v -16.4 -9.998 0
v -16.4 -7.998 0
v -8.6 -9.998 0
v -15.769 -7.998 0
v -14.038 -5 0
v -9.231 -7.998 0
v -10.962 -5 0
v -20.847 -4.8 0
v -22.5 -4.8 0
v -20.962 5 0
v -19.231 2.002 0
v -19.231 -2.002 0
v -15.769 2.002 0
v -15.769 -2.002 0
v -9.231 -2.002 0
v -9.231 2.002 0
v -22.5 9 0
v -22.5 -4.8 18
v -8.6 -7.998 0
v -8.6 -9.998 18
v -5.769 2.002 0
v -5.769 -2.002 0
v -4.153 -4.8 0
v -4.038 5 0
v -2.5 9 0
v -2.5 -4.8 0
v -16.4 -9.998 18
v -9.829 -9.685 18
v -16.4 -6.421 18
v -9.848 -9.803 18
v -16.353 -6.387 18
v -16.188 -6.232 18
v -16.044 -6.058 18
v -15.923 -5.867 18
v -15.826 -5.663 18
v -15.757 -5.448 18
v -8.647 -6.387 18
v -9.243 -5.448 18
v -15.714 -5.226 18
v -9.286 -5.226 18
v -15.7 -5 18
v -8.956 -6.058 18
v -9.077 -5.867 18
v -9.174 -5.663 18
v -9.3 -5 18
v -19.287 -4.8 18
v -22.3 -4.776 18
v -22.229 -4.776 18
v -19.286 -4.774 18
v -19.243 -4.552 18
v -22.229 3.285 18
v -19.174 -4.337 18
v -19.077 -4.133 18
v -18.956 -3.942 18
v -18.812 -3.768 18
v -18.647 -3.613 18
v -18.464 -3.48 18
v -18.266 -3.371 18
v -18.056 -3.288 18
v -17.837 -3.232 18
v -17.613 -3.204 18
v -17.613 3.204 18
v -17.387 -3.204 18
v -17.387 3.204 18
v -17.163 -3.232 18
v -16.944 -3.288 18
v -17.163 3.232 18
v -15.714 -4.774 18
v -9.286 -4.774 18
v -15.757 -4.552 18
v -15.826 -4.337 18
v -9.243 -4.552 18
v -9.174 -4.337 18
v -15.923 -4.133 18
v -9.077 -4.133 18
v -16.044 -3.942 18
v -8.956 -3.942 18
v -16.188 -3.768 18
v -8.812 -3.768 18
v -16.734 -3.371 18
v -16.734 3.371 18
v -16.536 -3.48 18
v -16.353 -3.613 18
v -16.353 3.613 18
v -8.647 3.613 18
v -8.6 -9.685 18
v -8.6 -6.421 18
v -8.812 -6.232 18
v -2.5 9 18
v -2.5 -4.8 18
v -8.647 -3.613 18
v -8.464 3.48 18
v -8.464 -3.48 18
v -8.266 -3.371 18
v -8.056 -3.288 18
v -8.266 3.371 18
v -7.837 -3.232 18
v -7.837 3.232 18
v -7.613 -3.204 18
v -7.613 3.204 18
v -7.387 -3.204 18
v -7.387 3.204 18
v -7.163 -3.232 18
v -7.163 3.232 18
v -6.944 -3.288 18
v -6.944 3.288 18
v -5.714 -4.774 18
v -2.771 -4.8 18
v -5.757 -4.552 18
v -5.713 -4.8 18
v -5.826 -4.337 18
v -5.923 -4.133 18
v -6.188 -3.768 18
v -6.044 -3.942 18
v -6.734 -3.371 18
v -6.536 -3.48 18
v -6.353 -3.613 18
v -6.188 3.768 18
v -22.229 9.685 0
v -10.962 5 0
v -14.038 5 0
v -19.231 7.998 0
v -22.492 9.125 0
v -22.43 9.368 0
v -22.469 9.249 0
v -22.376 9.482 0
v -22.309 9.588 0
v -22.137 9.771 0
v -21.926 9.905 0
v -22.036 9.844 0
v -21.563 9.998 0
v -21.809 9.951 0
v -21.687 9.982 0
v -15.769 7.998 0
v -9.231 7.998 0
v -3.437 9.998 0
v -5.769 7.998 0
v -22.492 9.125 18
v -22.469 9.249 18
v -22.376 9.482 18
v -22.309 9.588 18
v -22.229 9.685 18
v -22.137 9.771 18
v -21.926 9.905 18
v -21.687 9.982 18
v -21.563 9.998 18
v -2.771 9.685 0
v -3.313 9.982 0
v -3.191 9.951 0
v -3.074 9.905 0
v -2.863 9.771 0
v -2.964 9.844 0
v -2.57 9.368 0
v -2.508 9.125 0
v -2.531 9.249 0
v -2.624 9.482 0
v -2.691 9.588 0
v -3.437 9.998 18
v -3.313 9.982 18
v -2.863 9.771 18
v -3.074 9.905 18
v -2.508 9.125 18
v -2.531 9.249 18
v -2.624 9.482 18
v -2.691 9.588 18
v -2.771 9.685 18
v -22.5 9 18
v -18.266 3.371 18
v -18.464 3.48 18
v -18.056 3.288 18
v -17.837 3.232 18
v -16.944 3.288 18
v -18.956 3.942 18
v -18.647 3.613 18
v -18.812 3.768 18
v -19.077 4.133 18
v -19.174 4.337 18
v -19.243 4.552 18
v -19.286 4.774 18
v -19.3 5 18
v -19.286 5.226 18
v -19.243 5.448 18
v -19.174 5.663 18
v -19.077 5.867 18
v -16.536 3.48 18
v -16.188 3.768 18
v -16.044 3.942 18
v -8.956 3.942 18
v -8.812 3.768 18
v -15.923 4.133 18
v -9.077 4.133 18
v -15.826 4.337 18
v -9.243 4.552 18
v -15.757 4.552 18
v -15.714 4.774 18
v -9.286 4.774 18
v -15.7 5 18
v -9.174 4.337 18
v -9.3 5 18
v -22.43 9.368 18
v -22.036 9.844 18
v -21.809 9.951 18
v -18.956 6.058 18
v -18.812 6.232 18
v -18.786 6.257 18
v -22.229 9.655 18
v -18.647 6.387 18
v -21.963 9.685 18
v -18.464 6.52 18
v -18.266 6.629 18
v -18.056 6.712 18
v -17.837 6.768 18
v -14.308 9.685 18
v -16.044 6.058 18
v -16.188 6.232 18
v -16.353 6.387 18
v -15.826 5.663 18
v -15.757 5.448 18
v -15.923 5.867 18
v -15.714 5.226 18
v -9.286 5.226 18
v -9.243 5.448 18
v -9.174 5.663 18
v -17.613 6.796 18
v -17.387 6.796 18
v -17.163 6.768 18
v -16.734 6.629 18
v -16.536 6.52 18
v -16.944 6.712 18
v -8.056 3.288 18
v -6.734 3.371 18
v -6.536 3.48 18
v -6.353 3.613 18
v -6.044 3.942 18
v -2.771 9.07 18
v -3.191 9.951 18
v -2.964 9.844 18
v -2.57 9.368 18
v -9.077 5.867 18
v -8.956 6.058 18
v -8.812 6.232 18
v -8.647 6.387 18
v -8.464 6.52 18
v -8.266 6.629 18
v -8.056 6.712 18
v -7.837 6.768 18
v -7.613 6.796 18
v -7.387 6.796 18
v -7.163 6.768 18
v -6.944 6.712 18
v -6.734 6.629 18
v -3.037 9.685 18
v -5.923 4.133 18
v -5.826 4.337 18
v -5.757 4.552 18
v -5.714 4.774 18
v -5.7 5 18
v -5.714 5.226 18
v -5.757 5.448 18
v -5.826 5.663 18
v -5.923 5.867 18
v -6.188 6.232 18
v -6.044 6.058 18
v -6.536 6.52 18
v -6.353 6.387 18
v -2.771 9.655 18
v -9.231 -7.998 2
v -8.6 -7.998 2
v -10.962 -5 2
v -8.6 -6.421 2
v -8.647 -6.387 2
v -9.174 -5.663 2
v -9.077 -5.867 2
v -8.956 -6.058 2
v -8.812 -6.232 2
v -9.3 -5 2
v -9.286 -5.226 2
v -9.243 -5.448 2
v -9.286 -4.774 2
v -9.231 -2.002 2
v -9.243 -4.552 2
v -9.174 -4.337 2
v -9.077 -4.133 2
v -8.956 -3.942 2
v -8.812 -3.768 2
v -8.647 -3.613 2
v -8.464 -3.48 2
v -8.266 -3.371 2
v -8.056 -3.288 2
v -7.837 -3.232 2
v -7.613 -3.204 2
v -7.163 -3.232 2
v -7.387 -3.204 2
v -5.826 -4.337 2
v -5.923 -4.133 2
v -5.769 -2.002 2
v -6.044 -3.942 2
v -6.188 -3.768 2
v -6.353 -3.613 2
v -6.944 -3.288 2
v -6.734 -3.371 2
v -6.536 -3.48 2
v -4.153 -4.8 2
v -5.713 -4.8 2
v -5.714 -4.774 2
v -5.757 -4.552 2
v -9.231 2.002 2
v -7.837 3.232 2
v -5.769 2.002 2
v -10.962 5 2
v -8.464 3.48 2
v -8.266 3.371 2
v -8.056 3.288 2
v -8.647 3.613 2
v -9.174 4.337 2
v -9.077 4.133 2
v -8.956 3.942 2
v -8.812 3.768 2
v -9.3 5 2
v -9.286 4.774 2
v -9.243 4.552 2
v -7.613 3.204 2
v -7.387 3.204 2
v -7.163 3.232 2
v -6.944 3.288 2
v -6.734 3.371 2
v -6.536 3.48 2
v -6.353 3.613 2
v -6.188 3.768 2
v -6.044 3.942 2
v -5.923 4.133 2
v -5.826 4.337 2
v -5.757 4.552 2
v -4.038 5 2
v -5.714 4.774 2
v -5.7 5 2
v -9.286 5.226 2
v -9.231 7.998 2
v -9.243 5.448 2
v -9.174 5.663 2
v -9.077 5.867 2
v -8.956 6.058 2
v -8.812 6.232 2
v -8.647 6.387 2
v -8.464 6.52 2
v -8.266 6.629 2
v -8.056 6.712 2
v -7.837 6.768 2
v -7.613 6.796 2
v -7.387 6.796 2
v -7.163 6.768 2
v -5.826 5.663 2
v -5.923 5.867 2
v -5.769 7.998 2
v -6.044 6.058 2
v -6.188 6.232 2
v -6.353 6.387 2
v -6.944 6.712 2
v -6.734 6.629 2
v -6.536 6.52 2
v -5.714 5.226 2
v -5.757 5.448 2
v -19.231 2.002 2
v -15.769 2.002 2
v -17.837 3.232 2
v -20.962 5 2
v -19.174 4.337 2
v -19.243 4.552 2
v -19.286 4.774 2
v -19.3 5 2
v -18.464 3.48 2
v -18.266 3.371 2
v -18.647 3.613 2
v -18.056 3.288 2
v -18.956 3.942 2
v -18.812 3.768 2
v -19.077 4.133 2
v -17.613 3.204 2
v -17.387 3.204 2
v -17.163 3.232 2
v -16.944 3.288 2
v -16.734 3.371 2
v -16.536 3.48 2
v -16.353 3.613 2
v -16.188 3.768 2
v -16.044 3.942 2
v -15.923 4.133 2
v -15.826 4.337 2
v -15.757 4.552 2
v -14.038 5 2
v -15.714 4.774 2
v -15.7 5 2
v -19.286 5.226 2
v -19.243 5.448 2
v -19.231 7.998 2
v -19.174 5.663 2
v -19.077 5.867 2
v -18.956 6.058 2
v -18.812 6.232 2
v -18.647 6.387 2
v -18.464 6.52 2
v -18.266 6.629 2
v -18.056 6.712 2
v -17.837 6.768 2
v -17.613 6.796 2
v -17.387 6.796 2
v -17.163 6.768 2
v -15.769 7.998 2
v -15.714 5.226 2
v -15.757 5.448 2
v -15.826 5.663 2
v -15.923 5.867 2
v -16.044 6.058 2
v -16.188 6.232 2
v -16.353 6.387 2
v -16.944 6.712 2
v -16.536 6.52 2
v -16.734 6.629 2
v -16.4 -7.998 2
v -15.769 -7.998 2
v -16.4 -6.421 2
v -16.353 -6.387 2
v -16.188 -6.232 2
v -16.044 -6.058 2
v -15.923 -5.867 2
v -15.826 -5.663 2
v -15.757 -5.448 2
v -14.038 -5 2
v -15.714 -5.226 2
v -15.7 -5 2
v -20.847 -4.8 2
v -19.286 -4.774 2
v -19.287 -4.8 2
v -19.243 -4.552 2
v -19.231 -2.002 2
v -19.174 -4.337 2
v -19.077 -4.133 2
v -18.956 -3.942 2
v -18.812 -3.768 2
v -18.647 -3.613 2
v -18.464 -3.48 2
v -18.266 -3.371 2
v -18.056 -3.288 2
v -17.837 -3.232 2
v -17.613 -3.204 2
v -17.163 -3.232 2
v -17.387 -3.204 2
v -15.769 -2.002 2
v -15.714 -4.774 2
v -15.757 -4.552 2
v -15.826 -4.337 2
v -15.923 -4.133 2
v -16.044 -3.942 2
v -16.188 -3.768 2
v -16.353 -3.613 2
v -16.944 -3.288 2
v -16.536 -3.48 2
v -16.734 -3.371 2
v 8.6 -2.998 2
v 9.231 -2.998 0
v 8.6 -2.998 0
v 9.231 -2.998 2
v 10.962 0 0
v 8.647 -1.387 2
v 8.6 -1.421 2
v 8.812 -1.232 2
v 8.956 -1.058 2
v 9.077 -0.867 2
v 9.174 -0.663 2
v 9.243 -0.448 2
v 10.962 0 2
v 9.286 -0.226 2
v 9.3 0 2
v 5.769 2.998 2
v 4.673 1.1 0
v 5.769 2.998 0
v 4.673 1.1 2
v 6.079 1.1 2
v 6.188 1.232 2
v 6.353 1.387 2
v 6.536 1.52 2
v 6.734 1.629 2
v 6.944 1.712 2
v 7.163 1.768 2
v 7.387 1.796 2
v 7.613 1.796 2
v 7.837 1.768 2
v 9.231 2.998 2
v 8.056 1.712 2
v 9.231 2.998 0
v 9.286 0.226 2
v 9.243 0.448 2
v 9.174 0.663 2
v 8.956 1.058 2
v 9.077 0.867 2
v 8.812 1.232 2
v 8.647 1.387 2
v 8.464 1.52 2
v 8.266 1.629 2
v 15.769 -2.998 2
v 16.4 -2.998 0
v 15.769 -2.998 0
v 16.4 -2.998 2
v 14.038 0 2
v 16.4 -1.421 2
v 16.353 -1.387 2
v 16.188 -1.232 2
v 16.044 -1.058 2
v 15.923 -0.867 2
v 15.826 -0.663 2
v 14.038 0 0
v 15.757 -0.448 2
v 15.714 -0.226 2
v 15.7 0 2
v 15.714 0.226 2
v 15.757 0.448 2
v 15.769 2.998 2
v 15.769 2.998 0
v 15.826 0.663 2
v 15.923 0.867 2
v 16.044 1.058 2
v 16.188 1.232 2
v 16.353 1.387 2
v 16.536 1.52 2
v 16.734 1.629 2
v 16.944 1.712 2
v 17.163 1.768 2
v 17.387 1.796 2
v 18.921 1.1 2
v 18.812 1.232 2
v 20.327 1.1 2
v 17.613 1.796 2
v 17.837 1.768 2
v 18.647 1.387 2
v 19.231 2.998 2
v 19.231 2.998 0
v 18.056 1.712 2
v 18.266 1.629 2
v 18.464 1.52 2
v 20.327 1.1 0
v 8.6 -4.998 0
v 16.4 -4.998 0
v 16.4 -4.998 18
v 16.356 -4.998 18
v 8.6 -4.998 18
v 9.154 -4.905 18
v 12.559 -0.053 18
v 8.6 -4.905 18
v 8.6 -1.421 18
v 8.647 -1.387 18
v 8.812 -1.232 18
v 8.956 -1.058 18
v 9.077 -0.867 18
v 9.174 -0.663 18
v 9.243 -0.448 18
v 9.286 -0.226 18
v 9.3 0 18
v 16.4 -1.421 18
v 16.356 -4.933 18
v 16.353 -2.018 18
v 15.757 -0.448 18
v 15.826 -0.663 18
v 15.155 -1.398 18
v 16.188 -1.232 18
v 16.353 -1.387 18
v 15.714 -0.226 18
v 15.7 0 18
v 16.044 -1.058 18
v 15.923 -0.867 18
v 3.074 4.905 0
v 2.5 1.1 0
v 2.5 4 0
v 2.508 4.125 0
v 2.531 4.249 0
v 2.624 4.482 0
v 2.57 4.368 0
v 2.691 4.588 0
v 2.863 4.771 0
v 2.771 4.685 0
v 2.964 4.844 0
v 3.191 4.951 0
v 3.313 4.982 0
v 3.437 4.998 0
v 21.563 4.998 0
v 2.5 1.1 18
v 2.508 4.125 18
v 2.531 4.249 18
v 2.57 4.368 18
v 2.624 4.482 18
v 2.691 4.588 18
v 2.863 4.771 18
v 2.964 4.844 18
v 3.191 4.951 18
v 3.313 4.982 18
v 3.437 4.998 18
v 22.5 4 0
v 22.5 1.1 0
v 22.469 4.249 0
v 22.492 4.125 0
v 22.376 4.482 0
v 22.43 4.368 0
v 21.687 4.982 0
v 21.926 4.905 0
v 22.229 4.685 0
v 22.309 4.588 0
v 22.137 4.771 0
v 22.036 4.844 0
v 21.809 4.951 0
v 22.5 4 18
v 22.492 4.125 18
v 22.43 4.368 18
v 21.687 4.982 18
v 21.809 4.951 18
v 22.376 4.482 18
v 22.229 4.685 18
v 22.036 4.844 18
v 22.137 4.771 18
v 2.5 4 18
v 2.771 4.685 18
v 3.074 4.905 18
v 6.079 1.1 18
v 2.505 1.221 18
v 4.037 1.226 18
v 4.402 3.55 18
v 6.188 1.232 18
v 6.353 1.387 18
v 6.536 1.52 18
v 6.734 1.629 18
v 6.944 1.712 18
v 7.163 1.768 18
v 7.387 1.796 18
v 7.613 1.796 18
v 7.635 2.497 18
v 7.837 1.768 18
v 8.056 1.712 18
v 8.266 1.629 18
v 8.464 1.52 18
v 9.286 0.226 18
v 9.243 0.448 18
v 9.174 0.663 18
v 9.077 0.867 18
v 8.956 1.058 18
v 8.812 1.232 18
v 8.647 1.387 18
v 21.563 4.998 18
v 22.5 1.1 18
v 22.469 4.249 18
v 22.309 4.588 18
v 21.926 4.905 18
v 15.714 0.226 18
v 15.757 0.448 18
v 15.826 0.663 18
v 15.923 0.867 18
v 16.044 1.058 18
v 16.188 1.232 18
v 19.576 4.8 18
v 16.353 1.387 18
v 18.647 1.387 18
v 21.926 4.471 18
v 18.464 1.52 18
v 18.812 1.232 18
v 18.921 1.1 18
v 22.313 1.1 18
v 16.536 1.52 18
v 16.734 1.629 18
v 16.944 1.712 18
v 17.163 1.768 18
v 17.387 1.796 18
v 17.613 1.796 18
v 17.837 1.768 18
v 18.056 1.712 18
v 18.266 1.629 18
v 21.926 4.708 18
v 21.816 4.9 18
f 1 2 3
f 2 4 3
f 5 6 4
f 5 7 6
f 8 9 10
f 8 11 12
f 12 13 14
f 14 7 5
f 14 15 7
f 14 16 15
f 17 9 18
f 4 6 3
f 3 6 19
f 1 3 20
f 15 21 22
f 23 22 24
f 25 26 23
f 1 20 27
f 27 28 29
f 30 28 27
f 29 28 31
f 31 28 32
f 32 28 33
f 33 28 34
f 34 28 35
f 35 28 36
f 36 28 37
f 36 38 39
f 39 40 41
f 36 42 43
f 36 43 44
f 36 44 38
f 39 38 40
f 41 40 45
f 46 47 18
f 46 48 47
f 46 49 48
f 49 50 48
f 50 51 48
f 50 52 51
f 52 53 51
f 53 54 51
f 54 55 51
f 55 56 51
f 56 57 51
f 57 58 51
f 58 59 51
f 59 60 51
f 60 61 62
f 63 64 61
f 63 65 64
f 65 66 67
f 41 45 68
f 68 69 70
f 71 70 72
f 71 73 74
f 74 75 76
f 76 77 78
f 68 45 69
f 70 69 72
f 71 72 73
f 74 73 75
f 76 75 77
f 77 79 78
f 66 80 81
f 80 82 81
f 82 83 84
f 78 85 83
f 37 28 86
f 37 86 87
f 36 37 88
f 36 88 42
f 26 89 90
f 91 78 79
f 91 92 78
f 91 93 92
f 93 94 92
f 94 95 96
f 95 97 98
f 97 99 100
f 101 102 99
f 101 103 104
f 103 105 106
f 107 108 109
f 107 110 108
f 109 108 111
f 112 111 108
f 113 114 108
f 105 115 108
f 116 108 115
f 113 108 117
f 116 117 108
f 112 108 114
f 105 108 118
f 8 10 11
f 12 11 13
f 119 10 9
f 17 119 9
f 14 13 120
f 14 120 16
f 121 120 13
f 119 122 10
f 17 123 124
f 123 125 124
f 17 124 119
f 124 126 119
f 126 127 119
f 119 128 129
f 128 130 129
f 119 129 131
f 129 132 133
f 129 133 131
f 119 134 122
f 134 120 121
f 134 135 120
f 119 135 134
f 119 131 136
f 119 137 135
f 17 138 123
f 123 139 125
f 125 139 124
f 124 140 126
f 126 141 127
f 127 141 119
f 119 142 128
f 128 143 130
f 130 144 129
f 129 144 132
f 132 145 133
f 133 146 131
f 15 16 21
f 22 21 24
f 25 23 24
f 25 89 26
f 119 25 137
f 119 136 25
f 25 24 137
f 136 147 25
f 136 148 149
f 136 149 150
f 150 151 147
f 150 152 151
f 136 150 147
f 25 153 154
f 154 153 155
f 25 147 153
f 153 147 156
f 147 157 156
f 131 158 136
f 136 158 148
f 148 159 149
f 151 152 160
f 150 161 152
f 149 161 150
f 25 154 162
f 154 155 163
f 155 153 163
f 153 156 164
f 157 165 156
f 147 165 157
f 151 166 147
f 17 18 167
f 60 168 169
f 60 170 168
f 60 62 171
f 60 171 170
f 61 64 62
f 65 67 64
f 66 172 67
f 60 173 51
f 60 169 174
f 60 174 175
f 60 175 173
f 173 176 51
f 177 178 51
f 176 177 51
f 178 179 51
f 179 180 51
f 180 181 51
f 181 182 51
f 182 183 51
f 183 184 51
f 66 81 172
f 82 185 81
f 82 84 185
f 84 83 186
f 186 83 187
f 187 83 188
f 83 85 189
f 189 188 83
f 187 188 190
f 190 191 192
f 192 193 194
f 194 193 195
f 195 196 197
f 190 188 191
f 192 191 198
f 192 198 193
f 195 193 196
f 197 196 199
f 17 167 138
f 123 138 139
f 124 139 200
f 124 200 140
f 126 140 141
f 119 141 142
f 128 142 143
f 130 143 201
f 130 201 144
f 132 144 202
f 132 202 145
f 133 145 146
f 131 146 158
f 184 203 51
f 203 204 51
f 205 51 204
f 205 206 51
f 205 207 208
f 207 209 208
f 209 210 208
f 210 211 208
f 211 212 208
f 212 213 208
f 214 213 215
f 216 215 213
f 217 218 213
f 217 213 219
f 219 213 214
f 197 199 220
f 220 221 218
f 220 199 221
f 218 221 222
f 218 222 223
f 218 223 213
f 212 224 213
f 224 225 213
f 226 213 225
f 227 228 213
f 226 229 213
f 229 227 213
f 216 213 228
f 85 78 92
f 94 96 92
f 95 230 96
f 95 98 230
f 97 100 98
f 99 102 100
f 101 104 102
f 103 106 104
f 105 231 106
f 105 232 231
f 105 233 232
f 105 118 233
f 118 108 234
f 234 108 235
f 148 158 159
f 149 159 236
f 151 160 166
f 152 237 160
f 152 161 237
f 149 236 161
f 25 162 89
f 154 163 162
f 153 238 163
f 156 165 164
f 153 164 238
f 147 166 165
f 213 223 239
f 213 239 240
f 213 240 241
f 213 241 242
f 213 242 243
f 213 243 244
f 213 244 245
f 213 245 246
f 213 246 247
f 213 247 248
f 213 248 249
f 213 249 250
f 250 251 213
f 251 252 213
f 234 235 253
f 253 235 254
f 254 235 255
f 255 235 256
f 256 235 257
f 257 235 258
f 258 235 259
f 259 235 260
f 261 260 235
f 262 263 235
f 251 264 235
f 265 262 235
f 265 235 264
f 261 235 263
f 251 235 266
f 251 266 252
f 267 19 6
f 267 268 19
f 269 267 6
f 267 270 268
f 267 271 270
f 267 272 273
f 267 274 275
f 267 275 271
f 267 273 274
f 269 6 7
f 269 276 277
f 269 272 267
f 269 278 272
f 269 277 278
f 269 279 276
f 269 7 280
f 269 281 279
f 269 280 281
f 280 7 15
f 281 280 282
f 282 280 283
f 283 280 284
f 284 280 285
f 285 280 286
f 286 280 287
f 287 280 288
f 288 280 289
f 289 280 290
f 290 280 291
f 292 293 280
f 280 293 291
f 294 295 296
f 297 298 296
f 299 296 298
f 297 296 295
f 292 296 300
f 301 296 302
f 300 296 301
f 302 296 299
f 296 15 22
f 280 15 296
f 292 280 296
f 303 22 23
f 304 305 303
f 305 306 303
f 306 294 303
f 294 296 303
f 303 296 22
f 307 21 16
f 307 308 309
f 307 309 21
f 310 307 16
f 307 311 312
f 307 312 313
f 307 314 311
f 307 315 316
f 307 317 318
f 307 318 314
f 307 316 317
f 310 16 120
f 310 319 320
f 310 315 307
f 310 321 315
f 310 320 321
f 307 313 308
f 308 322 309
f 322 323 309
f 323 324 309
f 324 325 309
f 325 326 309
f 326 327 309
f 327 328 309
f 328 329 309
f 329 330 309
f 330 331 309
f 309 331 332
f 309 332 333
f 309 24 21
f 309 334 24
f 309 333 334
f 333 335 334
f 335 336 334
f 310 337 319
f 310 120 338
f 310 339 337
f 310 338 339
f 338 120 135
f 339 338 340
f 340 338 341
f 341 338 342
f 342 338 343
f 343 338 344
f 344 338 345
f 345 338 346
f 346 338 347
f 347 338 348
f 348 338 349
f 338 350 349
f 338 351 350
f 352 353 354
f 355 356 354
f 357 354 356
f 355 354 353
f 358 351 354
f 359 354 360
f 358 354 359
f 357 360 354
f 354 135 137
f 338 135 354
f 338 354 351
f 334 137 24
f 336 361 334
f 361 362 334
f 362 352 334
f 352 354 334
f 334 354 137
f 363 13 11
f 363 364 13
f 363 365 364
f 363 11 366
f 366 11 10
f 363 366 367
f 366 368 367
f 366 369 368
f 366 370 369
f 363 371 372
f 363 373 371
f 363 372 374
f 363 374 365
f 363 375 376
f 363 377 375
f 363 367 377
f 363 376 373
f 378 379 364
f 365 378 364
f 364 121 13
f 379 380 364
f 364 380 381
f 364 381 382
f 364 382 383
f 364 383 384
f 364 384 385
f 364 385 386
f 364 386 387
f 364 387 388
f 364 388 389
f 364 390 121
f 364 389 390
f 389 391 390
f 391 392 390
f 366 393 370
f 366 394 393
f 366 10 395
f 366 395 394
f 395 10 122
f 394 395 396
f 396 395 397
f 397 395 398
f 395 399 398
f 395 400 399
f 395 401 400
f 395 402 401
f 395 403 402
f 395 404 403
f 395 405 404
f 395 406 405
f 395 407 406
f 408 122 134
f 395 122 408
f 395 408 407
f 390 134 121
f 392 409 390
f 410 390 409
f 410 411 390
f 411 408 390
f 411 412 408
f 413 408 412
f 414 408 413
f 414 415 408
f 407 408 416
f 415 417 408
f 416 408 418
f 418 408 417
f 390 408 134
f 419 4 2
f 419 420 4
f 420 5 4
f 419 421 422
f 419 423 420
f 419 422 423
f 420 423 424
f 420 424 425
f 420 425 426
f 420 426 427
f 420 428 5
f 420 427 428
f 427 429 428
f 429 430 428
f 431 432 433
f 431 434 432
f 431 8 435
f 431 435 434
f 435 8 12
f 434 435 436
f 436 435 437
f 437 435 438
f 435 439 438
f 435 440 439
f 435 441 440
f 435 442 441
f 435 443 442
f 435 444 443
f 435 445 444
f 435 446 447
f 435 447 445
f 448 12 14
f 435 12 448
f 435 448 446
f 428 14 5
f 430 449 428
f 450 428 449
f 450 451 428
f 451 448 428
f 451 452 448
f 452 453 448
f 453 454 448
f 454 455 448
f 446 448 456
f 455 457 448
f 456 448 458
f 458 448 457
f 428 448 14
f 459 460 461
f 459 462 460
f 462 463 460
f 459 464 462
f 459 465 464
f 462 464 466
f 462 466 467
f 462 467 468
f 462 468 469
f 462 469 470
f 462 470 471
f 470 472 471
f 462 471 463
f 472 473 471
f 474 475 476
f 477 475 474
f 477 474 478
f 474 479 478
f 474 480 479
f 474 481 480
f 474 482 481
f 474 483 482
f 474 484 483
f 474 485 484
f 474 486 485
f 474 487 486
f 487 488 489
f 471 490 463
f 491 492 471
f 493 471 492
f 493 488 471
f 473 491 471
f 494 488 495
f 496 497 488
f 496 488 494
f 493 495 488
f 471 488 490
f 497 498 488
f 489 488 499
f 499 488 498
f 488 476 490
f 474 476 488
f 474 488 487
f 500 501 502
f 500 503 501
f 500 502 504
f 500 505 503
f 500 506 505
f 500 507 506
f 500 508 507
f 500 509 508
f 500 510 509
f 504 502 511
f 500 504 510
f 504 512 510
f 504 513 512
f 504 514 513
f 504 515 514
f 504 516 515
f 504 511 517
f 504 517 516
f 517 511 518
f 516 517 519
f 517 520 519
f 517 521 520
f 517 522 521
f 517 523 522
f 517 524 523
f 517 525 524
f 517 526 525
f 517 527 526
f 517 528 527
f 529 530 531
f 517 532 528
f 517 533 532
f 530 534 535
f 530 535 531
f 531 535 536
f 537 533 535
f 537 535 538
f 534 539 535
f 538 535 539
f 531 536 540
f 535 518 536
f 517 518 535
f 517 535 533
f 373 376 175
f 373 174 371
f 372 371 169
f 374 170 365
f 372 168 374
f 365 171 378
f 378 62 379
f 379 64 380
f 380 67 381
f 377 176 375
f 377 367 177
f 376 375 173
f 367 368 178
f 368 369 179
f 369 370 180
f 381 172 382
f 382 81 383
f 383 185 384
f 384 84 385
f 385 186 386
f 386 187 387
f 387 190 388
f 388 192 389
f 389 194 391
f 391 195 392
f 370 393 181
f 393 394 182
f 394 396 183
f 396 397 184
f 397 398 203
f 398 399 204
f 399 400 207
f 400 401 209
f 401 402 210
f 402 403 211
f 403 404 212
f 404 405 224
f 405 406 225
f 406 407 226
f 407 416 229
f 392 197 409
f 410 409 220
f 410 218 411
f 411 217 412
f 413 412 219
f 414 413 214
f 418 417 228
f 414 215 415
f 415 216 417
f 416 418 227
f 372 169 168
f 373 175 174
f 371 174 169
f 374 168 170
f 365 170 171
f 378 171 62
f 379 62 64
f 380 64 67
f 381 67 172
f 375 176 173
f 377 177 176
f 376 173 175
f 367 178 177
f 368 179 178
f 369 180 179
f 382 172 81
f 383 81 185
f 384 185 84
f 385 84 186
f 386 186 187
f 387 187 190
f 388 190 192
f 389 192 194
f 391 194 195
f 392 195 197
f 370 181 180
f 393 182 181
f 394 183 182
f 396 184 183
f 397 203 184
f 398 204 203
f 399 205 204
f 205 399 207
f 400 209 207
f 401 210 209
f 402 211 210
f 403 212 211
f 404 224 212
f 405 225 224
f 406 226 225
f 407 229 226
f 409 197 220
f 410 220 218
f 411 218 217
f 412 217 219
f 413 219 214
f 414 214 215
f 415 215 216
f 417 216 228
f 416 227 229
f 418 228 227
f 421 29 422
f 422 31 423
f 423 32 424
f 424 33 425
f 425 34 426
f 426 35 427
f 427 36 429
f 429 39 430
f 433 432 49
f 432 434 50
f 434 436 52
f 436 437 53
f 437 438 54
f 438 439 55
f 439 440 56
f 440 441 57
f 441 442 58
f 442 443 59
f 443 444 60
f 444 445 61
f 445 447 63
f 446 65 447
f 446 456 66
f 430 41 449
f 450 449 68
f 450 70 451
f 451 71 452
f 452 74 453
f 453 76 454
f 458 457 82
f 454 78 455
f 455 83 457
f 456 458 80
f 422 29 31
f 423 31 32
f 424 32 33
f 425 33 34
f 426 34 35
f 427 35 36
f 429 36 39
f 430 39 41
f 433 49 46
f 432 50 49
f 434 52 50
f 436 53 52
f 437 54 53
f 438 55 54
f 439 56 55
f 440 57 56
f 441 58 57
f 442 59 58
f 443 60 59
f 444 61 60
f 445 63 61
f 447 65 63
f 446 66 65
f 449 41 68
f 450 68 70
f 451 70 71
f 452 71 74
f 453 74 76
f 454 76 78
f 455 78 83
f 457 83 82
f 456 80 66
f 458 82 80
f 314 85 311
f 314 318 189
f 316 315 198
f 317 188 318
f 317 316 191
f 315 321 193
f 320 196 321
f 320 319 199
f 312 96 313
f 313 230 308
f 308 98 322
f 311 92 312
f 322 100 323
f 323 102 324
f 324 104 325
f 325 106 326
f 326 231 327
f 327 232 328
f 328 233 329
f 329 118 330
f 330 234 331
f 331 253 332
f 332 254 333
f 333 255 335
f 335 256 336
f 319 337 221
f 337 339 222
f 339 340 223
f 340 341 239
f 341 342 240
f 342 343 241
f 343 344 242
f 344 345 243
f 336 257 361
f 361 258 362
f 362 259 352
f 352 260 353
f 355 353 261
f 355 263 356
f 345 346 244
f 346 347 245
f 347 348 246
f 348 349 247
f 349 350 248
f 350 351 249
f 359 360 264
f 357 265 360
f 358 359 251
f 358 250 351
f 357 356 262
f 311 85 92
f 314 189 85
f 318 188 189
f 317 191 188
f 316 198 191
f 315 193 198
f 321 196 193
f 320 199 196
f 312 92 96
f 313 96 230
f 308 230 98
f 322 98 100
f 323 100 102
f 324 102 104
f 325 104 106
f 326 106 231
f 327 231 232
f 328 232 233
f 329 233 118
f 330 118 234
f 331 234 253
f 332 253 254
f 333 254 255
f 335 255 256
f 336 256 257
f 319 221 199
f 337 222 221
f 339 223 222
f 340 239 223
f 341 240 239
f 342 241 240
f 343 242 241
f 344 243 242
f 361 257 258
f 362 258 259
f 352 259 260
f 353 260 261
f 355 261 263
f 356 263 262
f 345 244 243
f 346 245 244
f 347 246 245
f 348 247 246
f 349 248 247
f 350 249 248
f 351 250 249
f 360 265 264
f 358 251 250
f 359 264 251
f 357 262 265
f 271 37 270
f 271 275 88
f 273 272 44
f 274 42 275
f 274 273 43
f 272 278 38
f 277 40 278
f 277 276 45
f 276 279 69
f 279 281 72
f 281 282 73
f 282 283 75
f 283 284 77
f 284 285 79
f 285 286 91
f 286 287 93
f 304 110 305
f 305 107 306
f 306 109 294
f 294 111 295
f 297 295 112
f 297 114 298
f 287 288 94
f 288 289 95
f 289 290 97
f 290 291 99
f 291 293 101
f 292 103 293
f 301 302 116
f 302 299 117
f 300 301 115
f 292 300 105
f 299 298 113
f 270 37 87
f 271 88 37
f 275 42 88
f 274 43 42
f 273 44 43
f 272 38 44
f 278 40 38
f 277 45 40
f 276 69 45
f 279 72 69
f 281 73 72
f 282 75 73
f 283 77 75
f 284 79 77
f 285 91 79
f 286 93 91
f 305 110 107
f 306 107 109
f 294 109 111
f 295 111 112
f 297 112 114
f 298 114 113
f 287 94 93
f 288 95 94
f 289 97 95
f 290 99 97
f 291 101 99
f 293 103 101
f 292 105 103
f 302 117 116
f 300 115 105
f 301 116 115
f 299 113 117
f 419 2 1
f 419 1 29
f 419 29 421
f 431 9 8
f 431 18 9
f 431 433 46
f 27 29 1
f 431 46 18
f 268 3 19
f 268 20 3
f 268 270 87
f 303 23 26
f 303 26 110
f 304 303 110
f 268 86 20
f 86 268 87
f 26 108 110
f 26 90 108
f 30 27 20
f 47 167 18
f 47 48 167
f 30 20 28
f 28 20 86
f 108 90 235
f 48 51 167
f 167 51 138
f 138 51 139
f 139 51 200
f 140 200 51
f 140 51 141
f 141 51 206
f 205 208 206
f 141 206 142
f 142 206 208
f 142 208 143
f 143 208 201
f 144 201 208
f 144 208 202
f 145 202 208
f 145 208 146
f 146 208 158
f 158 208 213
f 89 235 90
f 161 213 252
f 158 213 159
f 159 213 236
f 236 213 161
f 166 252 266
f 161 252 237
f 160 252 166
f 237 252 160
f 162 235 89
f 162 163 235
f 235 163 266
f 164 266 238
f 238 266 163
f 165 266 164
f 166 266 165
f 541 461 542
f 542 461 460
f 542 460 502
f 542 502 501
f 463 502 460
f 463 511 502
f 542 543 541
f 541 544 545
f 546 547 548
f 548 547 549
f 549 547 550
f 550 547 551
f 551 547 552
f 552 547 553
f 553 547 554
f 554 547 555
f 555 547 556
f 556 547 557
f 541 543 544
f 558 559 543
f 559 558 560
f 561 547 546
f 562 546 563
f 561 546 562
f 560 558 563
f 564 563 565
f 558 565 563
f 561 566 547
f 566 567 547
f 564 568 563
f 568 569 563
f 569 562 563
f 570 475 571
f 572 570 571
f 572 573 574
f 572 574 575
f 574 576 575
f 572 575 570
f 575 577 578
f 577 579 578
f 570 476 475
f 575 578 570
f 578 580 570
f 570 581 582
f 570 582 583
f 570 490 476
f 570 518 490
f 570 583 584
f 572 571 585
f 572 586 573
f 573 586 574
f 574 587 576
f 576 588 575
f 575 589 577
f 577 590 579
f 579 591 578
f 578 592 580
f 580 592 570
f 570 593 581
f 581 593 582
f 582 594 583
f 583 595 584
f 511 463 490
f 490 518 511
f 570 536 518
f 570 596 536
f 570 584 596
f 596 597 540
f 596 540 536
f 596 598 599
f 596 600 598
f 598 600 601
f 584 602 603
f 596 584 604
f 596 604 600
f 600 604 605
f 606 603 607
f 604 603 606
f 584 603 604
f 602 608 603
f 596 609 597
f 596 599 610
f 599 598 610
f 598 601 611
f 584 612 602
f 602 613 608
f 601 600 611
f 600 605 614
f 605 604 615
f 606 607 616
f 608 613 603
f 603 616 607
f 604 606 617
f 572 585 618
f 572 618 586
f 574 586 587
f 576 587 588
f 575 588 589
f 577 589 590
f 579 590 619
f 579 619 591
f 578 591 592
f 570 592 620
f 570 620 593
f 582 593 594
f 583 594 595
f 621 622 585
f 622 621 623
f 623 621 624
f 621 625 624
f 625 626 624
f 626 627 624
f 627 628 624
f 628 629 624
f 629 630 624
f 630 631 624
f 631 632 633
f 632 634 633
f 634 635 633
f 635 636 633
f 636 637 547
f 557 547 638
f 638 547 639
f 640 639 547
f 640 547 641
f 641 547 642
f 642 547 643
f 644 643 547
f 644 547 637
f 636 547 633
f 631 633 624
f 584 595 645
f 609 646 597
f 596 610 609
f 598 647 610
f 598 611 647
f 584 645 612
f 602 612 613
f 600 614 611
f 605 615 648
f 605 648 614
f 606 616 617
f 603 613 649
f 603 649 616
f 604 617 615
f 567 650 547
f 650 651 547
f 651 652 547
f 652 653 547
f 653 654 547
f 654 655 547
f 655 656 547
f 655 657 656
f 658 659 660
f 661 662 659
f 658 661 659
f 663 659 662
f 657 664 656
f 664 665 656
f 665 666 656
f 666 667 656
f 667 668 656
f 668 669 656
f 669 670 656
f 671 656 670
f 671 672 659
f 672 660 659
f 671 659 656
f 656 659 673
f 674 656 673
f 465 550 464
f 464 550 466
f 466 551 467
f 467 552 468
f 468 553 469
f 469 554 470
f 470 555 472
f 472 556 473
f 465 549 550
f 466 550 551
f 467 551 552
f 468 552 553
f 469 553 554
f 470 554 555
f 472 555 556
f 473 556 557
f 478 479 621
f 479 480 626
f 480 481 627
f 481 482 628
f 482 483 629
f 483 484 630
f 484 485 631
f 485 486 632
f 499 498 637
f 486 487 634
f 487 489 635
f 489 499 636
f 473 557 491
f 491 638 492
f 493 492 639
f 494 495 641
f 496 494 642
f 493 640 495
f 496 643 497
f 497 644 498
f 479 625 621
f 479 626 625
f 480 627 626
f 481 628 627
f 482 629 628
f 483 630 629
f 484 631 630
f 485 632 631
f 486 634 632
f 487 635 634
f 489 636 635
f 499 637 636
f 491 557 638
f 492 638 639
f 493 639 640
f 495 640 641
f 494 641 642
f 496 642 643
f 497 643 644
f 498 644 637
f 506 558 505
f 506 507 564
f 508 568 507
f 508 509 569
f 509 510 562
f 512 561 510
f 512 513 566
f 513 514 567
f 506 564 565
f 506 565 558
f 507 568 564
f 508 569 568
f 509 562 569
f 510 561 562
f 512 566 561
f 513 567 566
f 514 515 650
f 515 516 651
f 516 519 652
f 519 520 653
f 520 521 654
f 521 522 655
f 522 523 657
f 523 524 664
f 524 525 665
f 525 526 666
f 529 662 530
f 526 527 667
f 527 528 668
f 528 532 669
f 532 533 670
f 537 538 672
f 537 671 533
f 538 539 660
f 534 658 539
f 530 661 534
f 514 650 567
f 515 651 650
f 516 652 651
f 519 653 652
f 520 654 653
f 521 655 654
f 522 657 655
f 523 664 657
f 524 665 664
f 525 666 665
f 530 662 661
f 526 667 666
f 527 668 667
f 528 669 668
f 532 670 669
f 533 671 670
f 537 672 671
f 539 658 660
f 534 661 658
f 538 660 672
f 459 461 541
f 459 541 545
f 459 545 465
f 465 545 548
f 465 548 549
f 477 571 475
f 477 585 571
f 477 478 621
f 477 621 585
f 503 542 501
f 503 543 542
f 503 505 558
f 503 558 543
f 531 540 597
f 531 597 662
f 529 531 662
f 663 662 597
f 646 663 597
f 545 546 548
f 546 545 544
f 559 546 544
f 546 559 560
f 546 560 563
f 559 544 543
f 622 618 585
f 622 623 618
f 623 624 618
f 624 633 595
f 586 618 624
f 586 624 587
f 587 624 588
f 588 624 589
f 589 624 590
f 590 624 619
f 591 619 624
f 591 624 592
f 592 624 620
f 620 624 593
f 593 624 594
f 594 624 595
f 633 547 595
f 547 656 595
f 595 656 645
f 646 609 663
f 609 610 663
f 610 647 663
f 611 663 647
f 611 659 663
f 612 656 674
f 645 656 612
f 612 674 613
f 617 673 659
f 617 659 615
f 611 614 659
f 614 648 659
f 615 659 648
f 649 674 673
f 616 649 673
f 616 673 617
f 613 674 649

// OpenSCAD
$fn = 50;

difference() {
	union() {
		translate(v = [-12.5, 0, 0]) {
			rotate(a = [0, 0, 0]) {
				difference() {
					union() {
						hull() {
							translate(v = [-9.0, 9.0, 0]) {
								cylinder(h = 18.0, r = 1.0);
							}
							translate(v = [9.0, 9.0, 0]) {
								cylinder(h = 18.0, r = 1.0);
							}
							translate(v = [-9.0, -9.0, 0]) {
								cylinder(h = 18.0, r = 1.0);
							}
							translate(v = [9.0, -9.0, 0]) {
								cylinder(h = 18.0, r = 1.0);
							}
						}
					}
					union() {
						translate(v = [-5.0, 5.0, 2.0]) {
							rotate(a = [180.0, 0, 0]) {
								difference() {
									union() {
										translate(v = [0, 0, 0]) {
											rotate(a = [0, 0, 0]) {
												difference() {
													union() {
														linear_extrude(height = 4.0) {
															polygon(points = [[3.4619999999999997, 0.0], [1.7310000000000003, 2.9981799479017264], [-1.7309999999999992, 2.9981799479017264], [-3.4619999999999997, 4.2397272186481365e-16], [-1.7310000000000014, -2.998179947901726], [1.7309999999999977, -2.9981799479017277]]);
														}
													}
													union();
												}
											}
										}
									}
									union();
								}
							}
						}
						translate(v = [-5.0, -5.0, 2.0]) {
							rotate(a = [180.0, 0, 0]) {
								difference() {
									union() {
										translate(v = [0, 0, 0]) {
											rotate(a = [0, 0, 0]) {
												difference() {
													union() {
														linear_extrude(height = 4.0) {
															polygon(points = [[3.4619999999999997, 0.0], [1.7310000000000003, 2.9981799479017264], [-1.7309999999999992, 2.9981799479017264], [-3.4619999999999997, 4.2397272186481365e-16], [-1.7310000000000014, -2.998179947901726], [1.7309999999999977, -2.9981799479017277]]);
														}
													}
													union();
												}
											}
										}
									}
									union();
								}
							}
						}
						translate(v = [5.0, 5.0, 2.0]) {
							rotate(a = [180.0, 0, 0]) {
								difference() {
									union() {
										translate(v = [0, 0, 0]) {
											rotate(a = [0, 0, 0]) {
												difference() {
													union() {
														linear_extrude(height = 4.0) {
															polygon(points = [[3.4619999999999997, 0.0], [1.7310000000000003, 2.9981799479017264], [-1.7309999999999992, 2.9981799479017264], [-3.4619999999999997, 4.2397272186481365e-16], [-1.7310000000000014, -2.998179947901726], [1.7309999999999977, -2.9981799479017277]]);
														}
													}
													union();
												}
											}
										}
									}
									union();
								}
							}
						}
						translate(v = [5.0, -5.0, 2.0]) {
							rotate(a = [180.0, 0, 0]) {
								difference() {
									union() {
										translate(v = [0, 0, 0]) {
											rotate(a = [0, 0, 0]) {
												difference() {
													union() {
														linear_extrude(height = 4.0) {
															polygon(points = [[3.4619999999999997, 0.0], [1.7310000000000003, 2.9981799479017264], [-1.7309999999999992, 2.9981799479017264], [-3.4619999999999997, 4.2397272186481365e-16], [-1.7310000000000014, -2.998179947901726], [1.7309999999999977, -2.9981799479017277]]);
														}
													}
													union();
												}
											}
										}
									}
									union();
								}
							}
						}
						translate(v = [-5.0, 5.0, -0.5]) {
							cylinder(h = 20.0, r = 1.8);
						}
						translate(v = [-5.0, -5.0, -0.5]) {
							cylinder(h = 20.0, r = 1.8);
						}
						translate(v = [5.0, 5.0, -0.5]) {
							cylinder(h = 20.0, r = 1.8);
						}
						translate(v = [5.0, -5.0, -0.5]) {
							cylinder(h = 20.0, r = 1.8);
						}
						translate(v = [-103.9000000005, -104.8, -0.1]) {
							cube(size = [100, 100, 19.0]);
						}
						translate(v = [3.900000000500003, -104.8, -0.1]) {
							cube(size = [100, 100, 19.0]);
						}
						translate(v = [-50, -50, 18.0]) {
							cube(size = [100, 100, 2]);
						}
					}
				}
			}
		}
		translate(v = [12.5, 0, 0]) {
			rotate(a = [0, 0, 0]) {
				difference() {
					union() {
						hull() {
							translate(v = [-9.0, 4.0, 0]) {
								cylinder(h = 18.0, r = 1.0);
							}
							translate(v = [9.0, 4.0, 0]) {
								cylinder(h = 18.0, r = 1.0);
							}
							translate(v = [-9.0, -4.0, 0]) {
								cylinder(h = 18.0, r = 1.0);
							}
							translate(v = [9.0, -4.0, 0]) {
								cylinder(h = 18.0, r = 1.0);
							}
						}
					}
					union() {
						translate(v = [-5.0, 0.0, 2.0]) {
							rotate(a = [180.0, 0, 0]) {
								difference() {
									union() {
										translate(v = [0, 0, 0]) {
											rotate(a = [0, 0, 0]) {
												difference() {
													union() {
														linear_extrude(height = 4.0) {
															polygon(points = [[3.4619999999999997, 0.0], [1.7310000000000003, 2.9981799479017264], [-1.7309999999999992, 2.9981799479017264], [-3.4619999999999997, 4.2397272186481365e-16], [-1.7310000000000014, -2.998179947901726], [1.7309999999999977, -2.9981799479017277]]);
														}
													}
													union();
												}
											}
										}
									}
									union();
								}
							}
						}
						translate(v = [5.0, 0.0, 2.0]) {
							rotate(a = [180.0, 0, 0]) {
								difference() {
									union() {
										translate(v = [0, 0, 0]) {
											rotate(a = [0, 0, 0]) {
												difference() {
													union() {
														linear_extrude(height = 4.0) {
															polygon(points = [[3.4619999999999997, 0.0], [1.7310000000000003, 2.9981799479017264], [-1.7309999999999992, 2.9981799479017264], [-3.4619999999999997, 4.2397272186481365e-16], [-1.7310000000000014, -2.998179947901726], [1.7309999999999977, -2.9981799479017277]]);
														}
													}
													union();
												}
											}
										}
									}
									union();
								}
							}
						}
						translate(v = [-5.0, 0.0, -0.5]) {
							cylinder(h = 20.0, r = 1.8);
						}
						translate(v = [5.0, 0.0, -0.5]) {
							cylinder(h = 20.0, r = 1.8);
						}
						translate(v = [-103.9000000005, -99.8, -0.1]) {
							cube(size = [100, 100, 19.0]);
						}
						translate(v = [-104.8, -98.9000000005, -0.1]) {
							cube(size = [100, 100, 19.0]);
						}
						translate(v = [3.900000000500003, -99.8, -0.1]) {
							cube(size = [100, 100, 19.0]);
						}
						translate(v = [4.8, -98.9000000005, -0.1]) {
							cube(size = [100, 100, 19.0]);
						}
						translate(v = [-50, -50, 18.0]) {
							cube(size = [100, 100, 2]);
						}
					}
				}
			}
		}
	}
	union();
}
